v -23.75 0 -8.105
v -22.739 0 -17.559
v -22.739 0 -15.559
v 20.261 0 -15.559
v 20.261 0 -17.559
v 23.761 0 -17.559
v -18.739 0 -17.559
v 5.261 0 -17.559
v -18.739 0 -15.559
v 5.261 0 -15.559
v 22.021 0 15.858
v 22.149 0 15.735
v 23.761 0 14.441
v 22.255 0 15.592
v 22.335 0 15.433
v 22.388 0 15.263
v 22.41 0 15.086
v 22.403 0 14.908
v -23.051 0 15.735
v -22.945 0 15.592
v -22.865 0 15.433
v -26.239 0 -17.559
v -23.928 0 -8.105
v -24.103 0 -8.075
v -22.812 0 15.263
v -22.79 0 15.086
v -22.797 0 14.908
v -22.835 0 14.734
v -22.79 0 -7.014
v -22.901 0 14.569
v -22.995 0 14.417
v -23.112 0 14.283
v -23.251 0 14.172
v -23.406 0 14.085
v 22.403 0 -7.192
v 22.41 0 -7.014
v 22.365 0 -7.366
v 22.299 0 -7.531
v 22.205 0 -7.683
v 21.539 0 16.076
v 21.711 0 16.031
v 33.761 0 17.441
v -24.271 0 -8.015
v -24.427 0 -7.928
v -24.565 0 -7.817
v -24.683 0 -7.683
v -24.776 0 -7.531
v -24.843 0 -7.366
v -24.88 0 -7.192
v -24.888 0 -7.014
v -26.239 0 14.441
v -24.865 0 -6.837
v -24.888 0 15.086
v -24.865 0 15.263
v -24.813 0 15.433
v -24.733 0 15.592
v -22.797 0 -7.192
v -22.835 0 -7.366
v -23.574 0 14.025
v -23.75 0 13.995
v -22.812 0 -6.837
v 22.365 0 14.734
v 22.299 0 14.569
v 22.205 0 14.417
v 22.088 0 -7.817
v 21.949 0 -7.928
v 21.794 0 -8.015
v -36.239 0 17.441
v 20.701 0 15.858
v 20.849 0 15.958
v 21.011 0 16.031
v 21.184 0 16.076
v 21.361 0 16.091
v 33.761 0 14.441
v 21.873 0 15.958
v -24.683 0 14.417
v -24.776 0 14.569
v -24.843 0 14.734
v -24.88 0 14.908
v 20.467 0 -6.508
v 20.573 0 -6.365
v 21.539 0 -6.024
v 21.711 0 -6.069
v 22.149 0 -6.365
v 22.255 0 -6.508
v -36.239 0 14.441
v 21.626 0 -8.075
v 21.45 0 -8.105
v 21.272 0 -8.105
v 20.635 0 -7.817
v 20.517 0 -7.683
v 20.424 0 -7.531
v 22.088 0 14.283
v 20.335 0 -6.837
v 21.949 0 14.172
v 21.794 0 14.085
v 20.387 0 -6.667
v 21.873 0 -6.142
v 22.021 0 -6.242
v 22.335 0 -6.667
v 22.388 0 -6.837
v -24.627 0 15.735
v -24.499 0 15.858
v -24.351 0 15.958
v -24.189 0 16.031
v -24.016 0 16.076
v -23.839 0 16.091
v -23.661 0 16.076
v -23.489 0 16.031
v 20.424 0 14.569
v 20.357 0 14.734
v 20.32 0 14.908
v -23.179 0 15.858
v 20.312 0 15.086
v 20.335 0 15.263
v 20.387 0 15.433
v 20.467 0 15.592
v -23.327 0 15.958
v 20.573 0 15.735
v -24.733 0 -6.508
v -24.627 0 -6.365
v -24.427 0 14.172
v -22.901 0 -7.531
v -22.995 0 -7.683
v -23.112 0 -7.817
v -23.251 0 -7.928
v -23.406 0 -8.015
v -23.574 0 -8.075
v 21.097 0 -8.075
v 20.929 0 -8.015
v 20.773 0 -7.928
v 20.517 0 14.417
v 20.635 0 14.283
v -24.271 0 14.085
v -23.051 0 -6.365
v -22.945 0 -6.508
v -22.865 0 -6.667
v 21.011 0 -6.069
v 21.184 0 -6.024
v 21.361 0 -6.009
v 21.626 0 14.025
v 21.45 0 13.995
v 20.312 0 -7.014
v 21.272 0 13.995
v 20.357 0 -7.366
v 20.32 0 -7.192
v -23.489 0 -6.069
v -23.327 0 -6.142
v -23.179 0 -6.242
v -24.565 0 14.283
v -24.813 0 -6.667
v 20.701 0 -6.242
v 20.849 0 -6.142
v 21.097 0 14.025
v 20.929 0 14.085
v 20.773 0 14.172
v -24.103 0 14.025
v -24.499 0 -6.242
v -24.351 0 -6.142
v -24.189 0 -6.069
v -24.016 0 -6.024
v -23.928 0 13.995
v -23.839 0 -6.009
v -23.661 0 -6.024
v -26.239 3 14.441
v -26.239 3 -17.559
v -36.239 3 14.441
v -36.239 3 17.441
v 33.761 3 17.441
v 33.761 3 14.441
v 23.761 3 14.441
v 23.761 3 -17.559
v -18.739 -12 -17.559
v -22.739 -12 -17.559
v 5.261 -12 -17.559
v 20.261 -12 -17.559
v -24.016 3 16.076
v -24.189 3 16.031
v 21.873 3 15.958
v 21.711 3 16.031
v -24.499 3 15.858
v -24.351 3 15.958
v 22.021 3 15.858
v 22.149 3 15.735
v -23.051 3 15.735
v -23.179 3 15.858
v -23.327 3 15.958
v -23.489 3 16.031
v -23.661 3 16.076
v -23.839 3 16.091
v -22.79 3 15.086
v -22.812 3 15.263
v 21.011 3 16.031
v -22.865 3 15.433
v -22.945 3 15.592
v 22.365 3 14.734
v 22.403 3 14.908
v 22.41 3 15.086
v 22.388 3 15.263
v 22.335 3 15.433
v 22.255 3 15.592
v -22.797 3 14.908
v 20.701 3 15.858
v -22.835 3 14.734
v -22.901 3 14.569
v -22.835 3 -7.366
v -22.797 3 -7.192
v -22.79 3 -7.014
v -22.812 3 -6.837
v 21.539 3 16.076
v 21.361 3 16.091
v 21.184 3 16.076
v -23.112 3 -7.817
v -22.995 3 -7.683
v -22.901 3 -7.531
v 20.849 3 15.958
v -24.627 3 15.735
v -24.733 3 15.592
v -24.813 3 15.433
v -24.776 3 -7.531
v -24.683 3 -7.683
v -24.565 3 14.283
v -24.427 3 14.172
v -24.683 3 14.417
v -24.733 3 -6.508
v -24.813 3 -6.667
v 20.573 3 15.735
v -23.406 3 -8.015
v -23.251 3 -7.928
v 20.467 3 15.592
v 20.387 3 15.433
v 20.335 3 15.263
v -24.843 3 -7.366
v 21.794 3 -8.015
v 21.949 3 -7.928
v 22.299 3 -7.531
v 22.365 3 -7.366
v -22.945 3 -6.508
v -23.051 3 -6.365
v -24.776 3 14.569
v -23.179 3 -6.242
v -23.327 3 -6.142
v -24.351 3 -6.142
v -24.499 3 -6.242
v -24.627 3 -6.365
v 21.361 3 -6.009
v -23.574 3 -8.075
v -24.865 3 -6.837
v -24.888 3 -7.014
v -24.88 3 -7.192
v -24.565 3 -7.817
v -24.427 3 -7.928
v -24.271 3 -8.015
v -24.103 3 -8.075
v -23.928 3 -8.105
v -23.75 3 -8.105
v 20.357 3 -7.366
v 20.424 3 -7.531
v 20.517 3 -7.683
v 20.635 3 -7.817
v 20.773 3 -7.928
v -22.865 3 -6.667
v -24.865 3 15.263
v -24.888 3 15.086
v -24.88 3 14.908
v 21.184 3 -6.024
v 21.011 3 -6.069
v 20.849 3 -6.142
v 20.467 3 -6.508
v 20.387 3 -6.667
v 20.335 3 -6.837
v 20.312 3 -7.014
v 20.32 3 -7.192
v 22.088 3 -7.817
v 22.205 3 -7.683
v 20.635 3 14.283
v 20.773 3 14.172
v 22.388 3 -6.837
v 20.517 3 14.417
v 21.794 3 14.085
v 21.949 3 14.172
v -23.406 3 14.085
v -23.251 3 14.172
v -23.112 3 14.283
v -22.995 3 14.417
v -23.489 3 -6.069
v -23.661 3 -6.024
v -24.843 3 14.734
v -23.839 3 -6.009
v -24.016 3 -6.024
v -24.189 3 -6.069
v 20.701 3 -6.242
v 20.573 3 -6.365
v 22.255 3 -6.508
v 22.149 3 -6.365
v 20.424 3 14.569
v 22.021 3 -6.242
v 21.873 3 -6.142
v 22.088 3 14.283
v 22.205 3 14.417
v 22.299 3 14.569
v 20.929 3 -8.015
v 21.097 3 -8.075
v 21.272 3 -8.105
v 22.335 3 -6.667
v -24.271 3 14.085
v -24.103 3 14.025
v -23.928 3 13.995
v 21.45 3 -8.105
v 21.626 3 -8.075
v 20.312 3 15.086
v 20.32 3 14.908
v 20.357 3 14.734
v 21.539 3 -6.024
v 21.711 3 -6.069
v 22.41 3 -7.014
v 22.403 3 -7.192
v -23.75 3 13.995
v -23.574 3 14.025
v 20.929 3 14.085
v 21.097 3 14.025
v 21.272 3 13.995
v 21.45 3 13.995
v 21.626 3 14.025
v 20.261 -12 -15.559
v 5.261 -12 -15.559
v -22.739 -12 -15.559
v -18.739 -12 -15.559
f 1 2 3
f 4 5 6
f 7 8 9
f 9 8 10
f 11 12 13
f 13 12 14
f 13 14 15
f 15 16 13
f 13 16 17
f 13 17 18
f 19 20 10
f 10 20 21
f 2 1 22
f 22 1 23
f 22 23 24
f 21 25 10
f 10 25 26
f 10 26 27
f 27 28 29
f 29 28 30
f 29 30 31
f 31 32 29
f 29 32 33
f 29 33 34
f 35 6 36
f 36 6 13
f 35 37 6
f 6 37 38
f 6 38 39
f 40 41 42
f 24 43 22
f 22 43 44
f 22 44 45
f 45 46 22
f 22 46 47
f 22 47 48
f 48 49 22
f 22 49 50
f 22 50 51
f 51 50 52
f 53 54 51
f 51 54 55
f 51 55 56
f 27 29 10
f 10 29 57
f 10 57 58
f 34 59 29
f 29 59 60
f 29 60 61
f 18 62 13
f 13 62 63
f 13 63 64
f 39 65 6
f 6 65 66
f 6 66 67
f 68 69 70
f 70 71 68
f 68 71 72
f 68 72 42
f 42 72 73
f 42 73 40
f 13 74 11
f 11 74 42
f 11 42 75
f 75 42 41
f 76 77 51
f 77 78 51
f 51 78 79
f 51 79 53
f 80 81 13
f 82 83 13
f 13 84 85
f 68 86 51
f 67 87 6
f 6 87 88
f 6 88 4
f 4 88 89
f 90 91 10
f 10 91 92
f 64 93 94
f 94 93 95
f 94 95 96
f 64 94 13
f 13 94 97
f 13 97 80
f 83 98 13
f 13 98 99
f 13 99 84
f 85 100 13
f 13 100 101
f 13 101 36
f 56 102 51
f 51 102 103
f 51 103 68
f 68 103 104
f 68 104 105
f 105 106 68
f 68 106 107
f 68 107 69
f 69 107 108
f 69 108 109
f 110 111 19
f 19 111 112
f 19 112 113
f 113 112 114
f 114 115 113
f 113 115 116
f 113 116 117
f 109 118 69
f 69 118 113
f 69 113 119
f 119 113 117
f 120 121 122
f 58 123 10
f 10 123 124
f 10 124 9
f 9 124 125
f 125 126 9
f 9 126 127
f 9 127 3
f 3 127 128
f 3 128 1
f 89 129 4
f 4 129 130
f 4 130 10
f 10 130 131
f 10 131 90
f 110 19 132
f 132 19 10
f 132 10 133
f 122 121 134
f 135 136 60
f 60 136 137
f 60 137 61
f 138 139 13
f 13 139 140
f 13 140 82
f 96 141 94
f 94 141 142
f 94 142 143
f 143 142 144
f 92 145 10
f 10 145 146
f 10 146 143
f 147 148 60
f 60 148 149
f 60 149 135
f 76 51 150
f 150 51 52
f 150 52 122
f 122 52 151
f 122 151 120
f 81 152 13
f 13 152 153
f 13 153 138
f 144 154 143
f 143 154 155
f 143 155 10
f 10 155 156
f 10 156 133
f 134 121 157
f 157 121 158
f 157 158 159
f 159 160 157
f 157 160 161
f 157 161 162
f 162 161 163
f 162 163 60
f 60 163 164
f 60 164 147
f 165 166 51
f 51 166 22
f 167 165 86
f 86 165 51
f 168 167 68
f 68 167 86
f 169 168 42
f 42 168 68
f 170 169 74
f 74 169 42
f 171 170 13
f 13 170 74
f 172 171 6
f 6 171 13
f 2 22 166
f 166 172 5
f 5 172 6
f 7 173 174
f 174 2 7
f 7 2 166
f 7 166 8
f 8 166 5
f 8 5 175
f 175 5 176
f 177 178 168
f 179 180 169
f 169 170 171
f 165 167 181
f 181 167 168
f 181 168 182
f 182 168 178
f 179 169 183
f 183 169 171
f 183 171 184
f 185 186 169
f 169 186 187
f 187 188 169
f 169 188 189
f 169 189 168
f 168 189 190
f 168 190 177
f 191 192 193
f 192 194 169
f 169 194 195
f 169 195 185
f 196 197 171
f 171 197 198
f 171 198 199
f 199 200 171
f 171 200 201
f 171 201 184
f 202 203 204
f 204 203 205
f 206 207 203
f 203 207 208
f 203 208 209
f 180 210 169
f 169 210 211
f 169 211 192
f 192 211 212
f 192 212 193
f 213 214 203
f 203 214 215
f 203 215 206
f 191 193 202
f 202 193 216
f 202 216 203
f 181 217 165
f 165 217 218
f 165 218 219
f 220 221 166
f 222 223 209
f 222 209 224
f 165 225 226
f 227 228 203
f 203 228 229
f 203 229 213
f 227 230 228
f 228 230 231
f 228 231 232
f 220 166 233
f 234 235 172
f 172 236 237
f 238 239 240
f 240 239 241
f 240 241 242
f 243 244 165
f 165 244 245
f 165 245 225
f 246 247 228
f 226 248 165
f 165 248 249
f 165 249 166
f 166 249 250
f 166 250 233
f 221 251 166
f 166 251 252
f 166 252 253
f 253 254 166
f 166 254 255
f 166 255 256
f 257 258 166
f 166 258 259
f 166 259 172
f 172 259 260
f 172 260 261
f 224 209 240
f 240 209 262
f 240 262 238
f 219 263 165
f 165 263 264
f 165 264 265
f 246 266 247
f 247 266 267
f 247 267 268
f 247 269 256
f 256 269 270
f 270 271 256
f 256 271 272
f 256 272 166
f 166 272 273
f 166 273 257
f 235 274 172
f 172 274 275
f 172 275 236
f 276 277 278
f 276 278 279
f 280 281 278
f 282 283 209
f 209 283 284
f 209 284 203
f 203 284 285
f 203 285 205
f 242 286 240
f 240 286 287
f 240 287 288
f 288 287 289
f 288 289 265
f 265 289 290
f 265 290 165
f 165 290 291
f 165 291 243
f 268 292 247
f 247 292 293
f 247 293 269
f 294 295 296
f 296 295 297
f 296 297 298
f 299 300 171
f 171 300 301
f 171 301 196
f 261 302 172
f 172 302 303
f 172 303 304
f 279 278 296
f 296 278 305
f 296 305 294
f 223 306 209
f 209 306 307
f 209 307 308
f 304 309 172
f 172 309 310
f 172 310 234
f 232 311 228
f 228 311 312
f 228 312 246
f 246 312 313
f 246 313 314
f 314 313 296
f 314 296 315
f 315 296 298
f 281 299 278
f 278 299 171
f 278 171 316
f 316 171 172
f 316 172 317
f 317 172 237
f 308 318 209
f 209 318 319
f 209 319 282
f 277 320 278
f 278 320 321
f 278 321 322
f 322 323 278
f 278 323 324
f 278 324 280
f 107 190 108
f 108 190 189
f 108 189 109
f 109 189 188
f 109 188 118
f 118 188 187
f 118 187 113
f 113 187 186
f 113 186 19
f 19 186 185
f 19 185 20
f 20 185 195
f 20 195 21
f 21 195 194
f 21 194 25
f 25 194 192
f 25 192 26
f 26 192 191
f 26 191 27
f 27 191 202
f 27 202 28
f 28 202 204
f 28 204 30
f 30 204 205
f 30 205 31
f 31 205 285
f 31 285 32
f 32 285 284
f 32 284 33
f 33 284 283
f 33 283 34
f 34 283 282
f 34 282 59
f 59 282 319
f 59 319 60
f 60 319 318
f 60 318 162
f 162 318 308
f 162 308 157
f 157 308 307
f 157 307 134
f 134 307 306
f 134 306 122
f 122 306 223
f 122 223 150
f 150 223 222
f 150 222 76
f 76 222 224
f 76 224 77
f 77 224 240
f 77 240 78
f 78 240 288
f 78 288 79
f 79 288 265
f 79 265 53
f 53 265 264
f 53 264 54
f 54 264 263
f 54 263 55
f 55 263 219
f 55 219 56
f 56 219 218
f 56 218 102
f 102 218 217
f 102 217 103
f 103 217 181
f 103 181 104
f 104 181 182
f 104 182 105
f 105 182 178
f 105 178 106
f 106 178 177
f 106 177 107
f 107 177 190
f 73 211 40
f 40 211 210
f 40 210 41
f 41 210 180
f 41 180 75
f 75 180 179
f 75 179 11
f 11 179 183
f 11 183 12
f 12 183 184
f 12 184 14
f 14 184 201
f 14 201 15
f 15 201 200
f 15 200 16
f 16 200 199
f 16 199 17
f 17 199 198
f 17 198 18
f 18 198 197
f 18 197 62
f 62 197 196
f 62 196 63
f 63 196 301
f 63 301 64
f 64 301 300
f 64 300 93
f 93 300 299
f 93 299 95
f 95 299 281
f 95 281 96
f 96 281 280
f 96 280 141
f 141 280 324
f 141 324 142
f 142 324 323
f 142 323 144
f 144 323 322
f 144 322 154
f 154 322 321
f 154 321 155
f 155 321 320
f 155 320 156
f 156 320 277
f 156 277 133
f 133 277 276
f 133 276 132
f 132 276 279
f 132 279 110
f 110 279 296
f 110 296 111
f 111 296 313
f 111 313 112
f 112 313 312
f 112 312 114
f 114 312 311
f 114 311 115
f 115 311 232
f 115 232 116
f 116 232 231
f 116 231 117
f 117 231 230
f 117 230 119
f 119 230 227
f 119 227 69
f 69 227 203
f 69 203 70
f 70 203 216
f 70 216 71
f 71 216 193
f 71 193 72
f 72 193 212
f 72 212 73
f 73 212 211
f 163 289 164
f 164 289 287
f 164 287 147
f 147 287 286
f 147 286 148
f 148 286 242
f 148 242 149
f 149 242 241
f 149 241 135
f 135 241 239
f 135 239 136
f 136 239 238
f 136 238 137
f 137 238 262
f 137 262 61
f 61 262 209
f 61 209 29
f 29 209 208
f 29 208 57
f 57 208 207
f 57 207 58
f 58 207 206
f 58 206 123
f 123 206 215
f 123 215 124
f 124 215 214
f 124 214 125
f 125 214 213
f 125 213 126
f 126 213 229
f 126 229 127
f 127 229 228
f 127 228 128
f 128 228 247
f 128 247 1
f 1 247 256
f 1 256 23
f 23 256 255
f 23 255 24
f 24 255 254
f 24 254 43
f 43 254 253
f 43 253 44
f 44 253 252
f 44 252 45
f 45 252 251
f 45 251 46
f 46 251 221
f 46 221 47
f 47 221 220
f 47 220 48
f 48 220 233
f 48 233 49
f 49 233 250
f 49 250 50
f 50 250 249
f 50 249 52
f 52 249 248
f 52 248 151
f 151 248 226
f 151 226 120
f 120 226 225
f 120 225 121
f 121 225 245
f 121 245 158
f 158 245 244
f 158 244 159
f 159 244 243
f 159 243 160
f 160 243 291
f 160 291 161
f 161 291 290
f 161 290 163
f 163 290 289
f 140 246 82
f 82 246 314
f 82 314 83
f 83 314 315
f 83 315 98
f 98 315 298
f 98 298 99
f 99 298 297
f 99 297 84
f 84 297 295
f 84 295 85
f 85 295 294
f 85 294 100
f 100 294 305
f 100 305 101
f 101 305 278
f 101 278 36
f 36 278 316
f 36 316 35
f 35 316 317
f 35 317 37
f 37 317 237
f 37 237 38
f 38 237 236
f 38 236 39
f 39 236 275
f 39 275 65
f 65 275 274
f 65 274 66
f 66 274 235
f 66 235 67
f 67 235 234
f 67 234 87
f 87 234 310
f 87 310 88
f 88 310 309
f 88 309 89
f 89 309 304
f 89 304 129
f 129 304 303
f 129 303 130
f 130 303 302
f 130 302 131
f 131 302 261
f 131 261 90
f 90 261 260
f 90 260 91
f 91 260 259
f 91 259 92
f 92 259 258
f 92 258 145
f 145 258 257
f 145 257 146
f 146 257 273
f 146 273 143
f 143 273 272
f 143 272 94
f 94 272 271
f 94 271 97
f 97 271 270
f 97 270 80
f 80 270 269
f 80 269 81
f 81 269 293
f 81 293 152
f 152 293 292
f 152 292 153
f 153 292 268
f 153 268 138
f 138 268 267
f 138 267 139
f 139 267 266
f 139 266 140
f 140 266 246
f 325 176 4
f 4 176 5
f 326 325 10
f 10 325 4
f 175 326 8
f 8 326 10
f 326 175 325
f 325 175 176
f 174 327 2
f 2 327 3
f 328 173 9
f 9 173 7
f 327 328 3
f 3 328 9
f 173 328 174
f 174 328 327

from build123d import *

# Parameters (mm, degrees)
BOSS_EXTRUDE1_DEPTH = 3
SKETCH2_R           = 1.05
CUT_EXTRUDE1_DEPTH  = 3
SKETCH3_R           = 1.05
CUT_EXTRUDE2_DEPTH  = 3
SKETCH4_W           = 15
SKETCH4_H           = 2
SKETCH4_W_2         = 4
BOSS_EXTRUDE2_DEPTH = 12


with BuildPart() as part:
    # Sketch1 → Boss-Extrude1 (new body)
    with BuildSketch(Plane(origin=(0, 0, 0), x_dir=(1, 0, 0), z_dir=(0, 1, 0))):
        Polygon((-26.238881315, 17.558528428), (23.761118685, 17.558528428), (23.761118685, -14.441471572), (33.761118685, -14.441471572), (33.761118685, -17.441471572), (23.761118685, -17.441471572), (-26.238881315, -17.441471572), (-36.238881315, -17.441471572), (-36.238881315, -14.441471572), (-26.238881315, -14.441471572), align=None)
    extrude(amount=BOSS_EXTRUDE1_DEPTH)

    # Sketch2 → Cut-Extrude1 (cut)
    with BuildSketch(Plane(origin=(0, 3, 0), x_dir=(1, 0, 0), z_dir=(0, 1, 0))):
        with Locations(Location((-23.838881315, -15.041471572, 0), (0, 0, 270))):
            Circle(SKETCH2_R)
        with Locations(Location((21.361118685, -15.041471572, 0), (0, 0, 270))):
            Circle(SKETCH2_R)
    extrude(amount=-CUT_EXTRUDE1_DEPTH, mode=Mode.SUBTRACT)

    # Sketch3 → Cut-Extrude2 (cut)
    with BuildSketch(Plane(origin=(0, 3, 0), x_dir=(1, 0, 0), z_dir=(0, 1, 0))):
        with Locations(Location((-23.838881315, 7.058528428, 0), (0, 0, 270))):
            Circle(SKETCH3_R)
        with Locations(Location((21.361118685, 7.058528428, 0), (0, 0, 270))):
            Circle(SKETCH3_R)
    extrude(amount=-CUT_EXTRUDE2_DEPTH, mode=Mode.SUBTRACT)

    # Sketch4 → Boss-Extrude2 (add)
    with BuildSketch(Plane.XZ):
        with Locations((12.761118685, -16.558528428)):
            Rectangle(SKETCH4_W, SKETCH4_H)
        with Locations((-20.738881315, -16.558528428)):
            Rectangle(SKETCH4_W_2, SKETCH4_H)
    extrude(amount=BOSS_EXTRUDE2_DEPTH)


solid = part.part
